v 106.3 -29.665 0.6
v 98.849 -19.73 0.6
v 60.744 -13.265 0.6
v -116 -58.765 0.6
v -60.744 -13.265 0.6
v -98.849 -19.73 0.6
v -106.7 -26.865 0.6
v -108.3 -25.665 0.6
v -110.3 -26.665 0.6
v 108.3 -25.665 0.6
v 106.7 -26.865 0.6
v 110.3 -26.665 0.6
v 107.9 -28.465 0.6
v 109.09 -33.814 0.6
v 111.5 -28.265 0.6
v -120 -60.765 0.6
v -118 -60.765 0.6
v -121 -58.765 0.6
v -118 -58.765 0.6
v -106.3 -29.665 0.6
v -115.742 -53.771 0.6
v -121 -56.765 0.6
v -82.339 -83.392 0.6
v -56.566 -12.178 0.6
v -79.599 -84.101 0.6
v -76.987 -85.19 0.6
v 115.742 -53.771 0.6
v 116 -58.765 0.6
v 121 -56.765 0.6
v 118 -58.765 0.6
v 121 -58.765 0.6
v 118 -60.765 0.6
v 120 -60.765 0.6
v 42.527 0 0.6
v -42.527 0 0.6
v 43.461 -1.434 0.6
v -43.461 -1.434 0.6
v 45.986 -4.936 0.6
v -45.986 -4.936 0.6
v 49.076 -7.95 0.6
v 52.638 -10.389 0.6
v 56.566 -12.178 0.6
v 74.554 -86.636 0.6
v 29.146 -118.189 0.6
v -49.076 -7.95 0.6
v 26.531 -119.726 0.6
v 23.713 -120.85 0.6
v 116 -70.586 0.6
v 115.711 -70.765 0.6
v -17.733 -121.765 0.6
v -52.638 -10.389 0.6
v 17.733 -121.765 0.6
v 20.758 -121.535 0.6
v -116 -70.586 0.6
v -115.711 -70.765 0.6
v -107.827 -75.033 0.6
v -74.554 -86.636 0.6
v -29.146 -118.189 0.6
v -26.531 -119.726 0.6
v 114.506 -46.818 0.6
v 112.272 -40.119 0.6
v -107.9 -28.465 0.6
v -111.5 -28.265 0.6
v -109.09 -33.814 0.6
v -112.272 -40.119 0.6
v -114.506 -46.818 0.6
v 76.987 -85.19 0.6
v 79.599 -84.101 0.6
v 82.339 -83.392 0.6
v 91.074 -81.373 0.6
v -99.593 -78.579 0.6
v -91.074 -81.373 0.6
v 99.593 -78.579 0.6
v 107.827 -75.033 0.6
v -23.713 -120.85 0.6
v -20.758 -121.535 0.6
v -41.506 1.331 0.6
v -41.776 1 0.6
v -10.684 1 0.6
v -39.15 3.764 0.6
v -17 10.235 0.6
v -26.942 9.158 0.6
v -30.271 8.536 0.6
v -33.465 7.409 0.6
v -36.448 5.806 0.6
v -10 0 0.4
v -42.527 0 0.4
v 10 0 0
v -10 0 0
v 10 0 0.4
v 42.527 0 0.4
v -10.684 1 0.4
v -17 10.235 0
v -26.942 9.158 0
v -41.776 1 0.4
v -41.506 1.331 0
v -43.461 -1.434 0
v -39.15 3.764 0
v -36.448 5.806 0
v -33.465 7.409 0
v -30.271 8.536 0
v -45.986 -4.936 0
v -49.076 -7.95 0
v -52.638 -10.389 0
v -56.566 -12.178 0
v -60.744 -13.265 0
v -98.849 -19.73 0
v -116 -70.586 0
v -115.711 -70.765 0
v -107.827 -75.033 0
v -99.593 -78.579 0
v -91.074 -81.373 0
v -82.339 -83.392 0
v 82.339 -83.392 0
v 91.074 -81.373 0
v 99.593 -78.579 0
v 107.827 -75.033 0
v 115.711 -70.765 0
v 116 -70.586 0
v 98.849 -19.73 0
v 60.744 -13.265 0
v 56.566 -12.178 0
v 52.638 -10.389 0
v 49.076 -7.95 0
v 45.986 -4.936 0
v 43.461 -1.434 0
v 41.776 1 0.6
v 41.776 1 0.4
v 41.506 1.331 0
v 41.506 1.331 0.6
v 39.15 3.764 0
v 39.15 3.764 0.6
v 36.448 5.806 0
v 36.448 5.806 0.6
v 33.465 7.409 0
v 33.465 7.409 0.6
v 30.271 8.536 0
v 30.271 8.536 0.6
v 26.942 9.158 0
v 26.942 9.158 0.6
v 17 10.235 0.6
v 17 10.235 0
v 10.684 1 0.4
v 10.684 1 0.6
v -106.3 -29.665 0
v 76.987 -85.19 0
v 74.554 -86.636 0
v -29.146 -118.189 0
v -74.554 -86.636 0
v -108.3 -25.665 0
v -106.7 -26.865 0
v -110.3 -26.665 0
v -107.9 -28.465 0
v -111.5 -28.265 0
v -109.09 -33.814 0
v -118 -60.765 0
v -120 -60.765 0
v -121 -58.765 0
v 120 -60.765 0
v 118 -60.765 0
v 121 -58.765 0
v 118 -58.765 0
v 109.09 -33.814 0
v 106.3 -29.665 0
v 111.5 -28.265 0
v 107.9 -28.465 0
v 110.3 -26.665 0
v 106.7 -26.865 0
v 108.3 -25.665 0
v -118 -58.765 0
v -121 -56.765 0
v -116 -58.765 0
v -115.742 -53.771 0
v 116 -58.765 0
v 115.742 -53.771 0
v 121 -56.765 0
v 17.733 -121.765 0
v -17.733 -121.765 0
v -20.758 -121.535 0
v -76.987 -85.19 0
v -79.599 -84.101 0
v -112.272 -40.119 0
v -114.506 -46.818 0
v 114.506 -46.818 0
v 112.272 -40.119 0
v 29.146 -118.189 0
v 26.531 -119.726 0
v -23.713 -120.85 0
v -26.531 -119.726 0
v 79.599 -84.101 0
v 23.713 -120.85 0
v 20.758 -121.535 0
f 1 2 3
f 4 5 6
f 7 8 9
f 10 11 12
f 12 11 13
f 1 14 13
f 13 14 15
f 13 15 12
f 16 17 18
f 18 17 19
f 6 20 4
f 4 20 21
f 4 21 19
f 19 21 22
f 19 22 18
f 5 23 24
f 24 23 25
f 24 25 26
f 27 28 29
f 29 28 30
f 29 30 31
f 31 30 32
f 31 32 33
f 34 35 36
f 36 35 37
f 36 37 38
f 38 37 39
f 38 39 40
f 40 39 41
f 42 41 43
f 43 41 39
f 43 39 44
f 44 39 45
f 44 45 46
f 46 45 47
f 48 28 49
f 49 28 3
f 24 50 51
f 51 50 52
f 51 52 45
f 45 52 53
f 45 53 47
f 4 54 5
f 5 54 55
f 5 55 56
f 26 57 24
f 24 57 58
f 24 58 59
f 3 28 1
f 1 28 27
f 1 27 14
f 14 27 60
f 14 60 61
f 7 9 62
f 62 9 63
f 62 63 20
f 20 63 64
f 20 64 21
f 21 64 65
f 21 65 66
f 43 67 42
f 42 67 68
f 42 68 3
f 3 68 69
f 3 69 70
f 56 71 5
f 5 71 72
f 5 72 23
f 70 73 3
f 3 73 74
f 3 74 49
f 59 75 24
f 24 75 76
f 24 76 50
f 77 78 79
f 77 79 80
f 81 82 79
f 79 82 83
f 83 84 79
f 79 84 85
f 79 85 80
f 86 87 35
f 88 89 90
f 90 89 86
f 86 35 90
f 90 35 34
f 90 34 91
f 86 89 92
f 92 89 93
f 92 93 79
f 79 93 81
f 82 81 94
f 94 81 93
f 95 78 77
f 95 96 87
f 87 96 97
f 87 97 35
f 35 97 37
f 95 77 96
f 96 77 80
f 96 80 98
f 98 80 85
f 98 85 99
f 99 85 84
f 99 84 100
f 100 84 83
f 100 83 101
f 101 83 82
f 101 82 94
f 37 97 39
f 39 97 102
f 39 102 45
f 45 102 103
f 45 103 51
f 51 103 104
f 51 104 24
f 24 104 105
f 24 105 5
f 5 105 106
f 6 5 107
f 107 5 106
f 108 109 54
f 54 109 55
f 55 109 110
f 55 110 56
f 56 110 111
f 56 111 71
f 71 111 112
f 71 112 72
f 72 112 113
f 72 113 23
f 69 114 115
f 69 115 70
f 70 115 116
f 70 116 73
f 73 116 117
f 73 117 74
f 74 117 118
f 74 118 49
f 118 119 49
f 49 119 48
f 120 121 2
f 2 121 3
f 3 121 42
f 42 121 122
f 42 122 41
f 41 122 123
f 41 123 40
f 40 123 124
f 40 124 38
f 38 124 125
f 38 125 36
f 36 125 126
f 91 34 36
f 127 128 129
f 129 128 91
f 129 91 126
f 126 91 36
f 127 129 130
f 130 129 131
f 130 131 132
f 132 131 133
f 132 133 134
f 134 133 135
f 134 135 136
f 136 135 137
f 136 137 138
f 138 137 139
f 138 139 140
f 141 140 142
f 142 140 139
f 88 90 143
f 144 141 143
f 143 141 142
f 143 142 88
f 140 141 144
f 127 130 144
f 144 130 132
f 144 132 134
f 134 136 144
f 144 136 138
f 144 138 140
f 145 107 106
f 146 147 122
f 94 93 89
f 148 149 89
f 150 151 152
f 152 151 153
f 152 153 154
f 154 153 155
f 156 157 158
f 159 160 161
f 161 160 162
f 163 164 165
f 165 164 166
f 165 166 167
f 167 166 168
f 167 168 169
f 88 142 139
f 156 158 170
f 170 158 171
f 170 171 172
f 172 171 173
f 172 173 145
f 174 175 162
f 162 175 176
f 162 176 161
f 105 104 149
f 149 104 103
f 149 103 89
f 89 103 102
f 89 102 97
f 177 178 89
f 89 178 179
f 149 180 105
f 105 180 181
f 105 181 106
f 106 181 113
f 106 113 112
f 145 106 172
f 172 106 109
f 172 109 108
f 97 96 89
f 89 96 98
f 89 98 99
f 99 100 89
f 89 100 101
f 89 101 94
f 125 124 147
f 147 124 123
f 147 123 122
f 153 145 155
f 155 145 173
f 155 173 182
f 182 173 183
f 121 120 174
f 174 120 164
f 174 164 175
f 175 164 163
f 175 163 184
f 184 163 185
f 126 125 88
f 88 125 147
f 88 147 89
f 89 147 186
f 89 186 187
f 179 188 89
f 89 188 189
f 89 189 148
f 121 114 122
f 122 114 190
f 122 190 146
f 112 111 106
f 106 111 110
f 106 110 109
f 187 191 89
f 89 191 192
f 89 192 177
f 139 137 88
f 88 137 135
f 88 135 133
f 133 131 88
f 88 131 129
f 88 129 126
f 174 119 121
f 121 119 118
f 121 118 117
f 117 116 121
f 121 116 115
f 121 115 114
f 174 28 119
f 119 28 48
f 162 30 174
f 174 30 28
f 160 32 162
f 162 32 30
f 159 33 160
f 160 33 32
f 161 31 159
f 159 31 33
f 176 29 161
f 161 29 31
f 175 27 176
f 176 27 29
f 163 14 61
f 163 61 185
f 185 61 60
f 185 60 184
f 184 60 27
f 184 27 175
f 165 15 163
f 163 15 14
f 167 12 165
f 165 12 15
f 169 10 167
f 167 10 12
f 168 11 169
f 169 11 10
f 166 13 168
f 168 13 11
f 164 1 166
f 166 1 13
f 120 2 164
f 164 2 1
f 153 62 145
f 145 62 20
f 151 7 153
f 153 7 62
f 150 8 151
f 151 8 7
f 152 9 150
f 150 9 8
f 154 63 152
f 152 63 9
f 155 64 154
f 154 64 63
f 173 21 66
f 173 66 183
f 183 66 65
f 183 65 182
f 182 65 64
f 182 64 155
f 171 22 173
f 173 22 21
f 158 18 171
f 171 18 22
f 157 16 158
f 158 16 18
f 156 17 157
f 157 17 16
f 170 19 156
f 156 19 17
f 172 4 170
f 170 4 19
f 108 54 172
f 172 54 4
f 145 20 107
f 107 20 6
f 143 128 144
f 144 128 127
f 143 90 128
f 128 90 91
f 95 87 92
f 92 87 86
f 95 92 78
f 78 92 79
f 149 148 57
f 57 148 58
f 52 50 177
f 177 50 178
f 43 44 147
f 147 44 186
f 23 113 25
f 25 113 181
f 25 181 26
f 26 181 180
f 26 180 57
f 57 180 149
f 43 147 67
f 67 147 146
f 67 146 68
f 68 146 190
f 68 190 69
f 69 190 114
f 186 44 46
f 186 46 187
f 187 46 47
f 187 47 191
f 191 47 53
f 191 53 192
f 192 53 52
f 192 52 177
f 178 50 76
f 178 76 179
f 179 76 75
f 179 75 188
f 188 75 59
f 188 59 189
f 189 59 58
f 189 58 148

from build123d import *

# Parameters (mm, degrees)
MAIN_SHAPE_DEPTH    = 0.6
TABS_DEPTH          = 154.060061459
TABS_DEPTH_BACK     = 154.060061459
SKETCH4_W           = 90
SKETCH4_H           = 1
TAB_FOLD_LINE_DEPTH = 0.2
CHIN_GUARD_DEPTH    = 0.6
FILLET1_R           = 20


with BuildPart() as part:
    # Sketch1 → Main Shape (new body)
    with BuildSketch(Plane.XY):
        with BuildLine():
            Line((-24, -91.764766734), (24, -91.764766734))
            Line((24, -91.764766734), (78.266232563, -84.05670244))
            ThreePointArc((78.266232563, -84.05670244), (97.655491519, -79.289252293), (115.711102551, -70.764766734))
            ThreePointArc((115.711102551, -70.764766734), (120.685143325, -65.658407438), (122.5, -58.764766734))
            ThreePointArc((122.5, -58.764766734), (120.227482046, -43.118277124), (113.597722286, -28.764766734))
            ThreePointArc((113.597722286, -28.764766734), (107.811505455, -22.955172168), (100.180351554, -19.955641477))
            Line((100.180351554, -19.955641477), (60.74391922, -13.264766734))
            ThreePointArc((60.74391922, -13.264766734), (50.804108255, -9.246591688), (43.461443341, -1.434367632))
            ThreePointArc((43.461443341, -1.434367632), (36.448172688, 5.805997675), (26.941855461, 9.15842781))
            Line((26.941855461, 9.15842781), (17, 10.235233266))
            Line((17, 10.235233266), (10, 0))
            Line((10, 0), (-10, 0))
            Line((-10, 0), (-17, 10.235233266))
            Line((-17, 10.235233266), (-26.941855461, 9.15842781))
            ThreePointArc((-26.941855461, 9.15842781), (-36.448172688, 5.805997675), (-43.461443341, -1.434367632))
            ThreePointArc((-43.461443341, -1.434367632), (-50.804108255, -9.246591688), (-60.74391922, -13.264766734))
            Line((-60.74391922, -13.264766734), (-100.180351554, -19.955641477))
            ThreePointArc((-100.180351554, -19.955641477), (-107.811505455, -22.955172168), (-113.597722286, -28.764766734))
            ThreePointArc((-113.597722286, -28.764766734), (-120.227482046, -43.118277124), (-122.5, -58.764766734))
            ThreePointArc((-122.5, -58.764766734), (-120.685143325, -65.658407438), (-115.711102551, -70.764766734))
            ThreePointArc((-115.711102551, -70.764766734), (-97.655491519, -79.289252293), (-78.266232563, -84.05670244))
            Line((-78.266232563, -84.05670244), (-24, -91.764766734))
        make_face()
    extrude(amount=MAIN_SHAPE_DEPTH)

    # Sketch2 → Tabs (cut, two sides: drawn at the far end of the back side and taken through both)
    with BuildSketch(Plane.XY.offset(0.6).offset(-TABS_DEPTH_BACK)):
        with BuildLine():
            Line((-121, -58.764766734), (-121, -56.764766734))
            Line((-121, -56.764766734), (-115.742268041, -53.771413729))
            ThreePointArc((-115.742268041, -53.771413729), (-113.511139955, -43.427720083), (-109.089826236, -33.814088314))
            Line((-109.089826236, -33.814088314), (-111.5, -28.264766734))
            Line((-111.5, -28.264766734), (-110.3, -26.664766734))
            Line((-110.3, -26.664766734), (-108.3, -25.664766734))
            Line((-108.3, -25.664766734), (-106.7, -26.864766734))
            Line((-106.7, -26.864766734), (-107.9, -28.464766734))
            Line((-107.9, -28.464766734), (-106.3, -29.664766734))
            Line((-106.3, -29.664766734), (-98.84870892, -19.729711961))
            Line((-98.84870892, -19.729711961), (-100.180351554, -19.955641477))
            ThreePointArc((-100.180351554, -19.955641477), (-107.811505455, -22.955172168), (-113.597722286, -28.764766734))
            ThreePointArc((-113.597722286, -28.764766734), (-120.227482046, -43.118277124), (-122.5, -58.764766734))
            ThreePointArc((-122.5, -58.764766734), (-120.767844146, -65.510135516), (-116, -70.586357152))
            Line((-116, -70.586357152), (-116, -58.764766734))
            Line((-116, -58.764766734), (-118, -58.764766734))
            Line((-118, -58.764766734), (-118, -60.764766734))
            Line((-118, -60.764766734), (-120, -60.764766734))
            Line((-120, -60.764766734), (-121, -58.764766734))
        make_face()
        with BuildLine():
            Line((110.3, -26.664766734), (111.5, -28.264766734))
            Line((111.5, -28.264766734), (109.089826236, -33.814088314))
            ThreePointArc((109.089826236, -33.814088314), (113.511139955, -43.427720083), (115.742268041, -53.771413729))
            Line((115.742268041, -53.771413729), (121, -56.764766734))
            Line((121, -56.764766734), (121, -58.764766734))
            Line((121, -58.764766734), (120, -60.764766734))
            Line((120, -60.764766734), (118, -60.764766734))
            Line((118, -60.764766734), (118, -58.764766734))
            Line((118, -58.764766734), (116, -58.764766734))
            Line((116, -58.764766734), (116, -70.586357152))
            ThreePointArc((116, -70.586357152), (120.767844146, -65.510135516), (122.5, -58.764766734))
            ThreePointArc((122.5, -58.764766734), (120.227482046, -43.118277124), (113.597722286, -28.764766734))
            ThreePointArc((113.597722286, -28.764766734), (107.811505455, -22.955172168), (100.180351554, -19.955641477))
            Line((100.180351554, -19.955641477), (98.84870892, -19.729711961))
            Line((98.84870892, -19.729711961), (106.3, -29.664766734))
            Line((106.3, -29.664766734), (107.9, -28.464766734))
            Line((107.9, -28.464766734), (106.7, -26.864766734))
            Line((106.7, -26.864766734), (108.3, -25.664766734))
            Line((108.3, -25.664766734), (110.3, -26.664766734))
        make_face()
    extrude(amount=TABS_DEPTH + TABS_DEPTH_BACK, mode=Mode.SUBTRACT)

    # Sketch4 → Tab Fold Line (cut)
    with BuildSketch(Plane.XY.offset(0.6)):
        with Locations((0, 0.5)):
            Rectangle(SKETCH4_W, SKETCH4_H)
    extrude(amount=-TAB_FOLD_LINE_DEPTH, mode=Mode.SUBTRACT)

    # Sketch5 → Chin guard (add)
    with BuildSketch(Plane.XY.offset(0.6)):
        Polygon((-78.266232563, -84.05670244), (-24, -121.764766734), (24, -121.764766734), (78.266232563, -84.05670244), (24, -91.764766734), (-24, -91.764766734), align=None)
    extrude(amount=-CHIN_GUARD_DEPTH)

    # Fillet1
    fillet1_edges = [part.edges().sort_by_distance(p)[0] for p in [
        (-24, -121.764766734, 0.3),
        (24, -121.764766734, 0.3),
        (78.266232563, -84.05670244, 0.3),
        (-78.266232563, -84.05670244, 0.3),
    ]]
    fillet(fillet1_edges, radius=FILLET1_R)


solid = part.part
